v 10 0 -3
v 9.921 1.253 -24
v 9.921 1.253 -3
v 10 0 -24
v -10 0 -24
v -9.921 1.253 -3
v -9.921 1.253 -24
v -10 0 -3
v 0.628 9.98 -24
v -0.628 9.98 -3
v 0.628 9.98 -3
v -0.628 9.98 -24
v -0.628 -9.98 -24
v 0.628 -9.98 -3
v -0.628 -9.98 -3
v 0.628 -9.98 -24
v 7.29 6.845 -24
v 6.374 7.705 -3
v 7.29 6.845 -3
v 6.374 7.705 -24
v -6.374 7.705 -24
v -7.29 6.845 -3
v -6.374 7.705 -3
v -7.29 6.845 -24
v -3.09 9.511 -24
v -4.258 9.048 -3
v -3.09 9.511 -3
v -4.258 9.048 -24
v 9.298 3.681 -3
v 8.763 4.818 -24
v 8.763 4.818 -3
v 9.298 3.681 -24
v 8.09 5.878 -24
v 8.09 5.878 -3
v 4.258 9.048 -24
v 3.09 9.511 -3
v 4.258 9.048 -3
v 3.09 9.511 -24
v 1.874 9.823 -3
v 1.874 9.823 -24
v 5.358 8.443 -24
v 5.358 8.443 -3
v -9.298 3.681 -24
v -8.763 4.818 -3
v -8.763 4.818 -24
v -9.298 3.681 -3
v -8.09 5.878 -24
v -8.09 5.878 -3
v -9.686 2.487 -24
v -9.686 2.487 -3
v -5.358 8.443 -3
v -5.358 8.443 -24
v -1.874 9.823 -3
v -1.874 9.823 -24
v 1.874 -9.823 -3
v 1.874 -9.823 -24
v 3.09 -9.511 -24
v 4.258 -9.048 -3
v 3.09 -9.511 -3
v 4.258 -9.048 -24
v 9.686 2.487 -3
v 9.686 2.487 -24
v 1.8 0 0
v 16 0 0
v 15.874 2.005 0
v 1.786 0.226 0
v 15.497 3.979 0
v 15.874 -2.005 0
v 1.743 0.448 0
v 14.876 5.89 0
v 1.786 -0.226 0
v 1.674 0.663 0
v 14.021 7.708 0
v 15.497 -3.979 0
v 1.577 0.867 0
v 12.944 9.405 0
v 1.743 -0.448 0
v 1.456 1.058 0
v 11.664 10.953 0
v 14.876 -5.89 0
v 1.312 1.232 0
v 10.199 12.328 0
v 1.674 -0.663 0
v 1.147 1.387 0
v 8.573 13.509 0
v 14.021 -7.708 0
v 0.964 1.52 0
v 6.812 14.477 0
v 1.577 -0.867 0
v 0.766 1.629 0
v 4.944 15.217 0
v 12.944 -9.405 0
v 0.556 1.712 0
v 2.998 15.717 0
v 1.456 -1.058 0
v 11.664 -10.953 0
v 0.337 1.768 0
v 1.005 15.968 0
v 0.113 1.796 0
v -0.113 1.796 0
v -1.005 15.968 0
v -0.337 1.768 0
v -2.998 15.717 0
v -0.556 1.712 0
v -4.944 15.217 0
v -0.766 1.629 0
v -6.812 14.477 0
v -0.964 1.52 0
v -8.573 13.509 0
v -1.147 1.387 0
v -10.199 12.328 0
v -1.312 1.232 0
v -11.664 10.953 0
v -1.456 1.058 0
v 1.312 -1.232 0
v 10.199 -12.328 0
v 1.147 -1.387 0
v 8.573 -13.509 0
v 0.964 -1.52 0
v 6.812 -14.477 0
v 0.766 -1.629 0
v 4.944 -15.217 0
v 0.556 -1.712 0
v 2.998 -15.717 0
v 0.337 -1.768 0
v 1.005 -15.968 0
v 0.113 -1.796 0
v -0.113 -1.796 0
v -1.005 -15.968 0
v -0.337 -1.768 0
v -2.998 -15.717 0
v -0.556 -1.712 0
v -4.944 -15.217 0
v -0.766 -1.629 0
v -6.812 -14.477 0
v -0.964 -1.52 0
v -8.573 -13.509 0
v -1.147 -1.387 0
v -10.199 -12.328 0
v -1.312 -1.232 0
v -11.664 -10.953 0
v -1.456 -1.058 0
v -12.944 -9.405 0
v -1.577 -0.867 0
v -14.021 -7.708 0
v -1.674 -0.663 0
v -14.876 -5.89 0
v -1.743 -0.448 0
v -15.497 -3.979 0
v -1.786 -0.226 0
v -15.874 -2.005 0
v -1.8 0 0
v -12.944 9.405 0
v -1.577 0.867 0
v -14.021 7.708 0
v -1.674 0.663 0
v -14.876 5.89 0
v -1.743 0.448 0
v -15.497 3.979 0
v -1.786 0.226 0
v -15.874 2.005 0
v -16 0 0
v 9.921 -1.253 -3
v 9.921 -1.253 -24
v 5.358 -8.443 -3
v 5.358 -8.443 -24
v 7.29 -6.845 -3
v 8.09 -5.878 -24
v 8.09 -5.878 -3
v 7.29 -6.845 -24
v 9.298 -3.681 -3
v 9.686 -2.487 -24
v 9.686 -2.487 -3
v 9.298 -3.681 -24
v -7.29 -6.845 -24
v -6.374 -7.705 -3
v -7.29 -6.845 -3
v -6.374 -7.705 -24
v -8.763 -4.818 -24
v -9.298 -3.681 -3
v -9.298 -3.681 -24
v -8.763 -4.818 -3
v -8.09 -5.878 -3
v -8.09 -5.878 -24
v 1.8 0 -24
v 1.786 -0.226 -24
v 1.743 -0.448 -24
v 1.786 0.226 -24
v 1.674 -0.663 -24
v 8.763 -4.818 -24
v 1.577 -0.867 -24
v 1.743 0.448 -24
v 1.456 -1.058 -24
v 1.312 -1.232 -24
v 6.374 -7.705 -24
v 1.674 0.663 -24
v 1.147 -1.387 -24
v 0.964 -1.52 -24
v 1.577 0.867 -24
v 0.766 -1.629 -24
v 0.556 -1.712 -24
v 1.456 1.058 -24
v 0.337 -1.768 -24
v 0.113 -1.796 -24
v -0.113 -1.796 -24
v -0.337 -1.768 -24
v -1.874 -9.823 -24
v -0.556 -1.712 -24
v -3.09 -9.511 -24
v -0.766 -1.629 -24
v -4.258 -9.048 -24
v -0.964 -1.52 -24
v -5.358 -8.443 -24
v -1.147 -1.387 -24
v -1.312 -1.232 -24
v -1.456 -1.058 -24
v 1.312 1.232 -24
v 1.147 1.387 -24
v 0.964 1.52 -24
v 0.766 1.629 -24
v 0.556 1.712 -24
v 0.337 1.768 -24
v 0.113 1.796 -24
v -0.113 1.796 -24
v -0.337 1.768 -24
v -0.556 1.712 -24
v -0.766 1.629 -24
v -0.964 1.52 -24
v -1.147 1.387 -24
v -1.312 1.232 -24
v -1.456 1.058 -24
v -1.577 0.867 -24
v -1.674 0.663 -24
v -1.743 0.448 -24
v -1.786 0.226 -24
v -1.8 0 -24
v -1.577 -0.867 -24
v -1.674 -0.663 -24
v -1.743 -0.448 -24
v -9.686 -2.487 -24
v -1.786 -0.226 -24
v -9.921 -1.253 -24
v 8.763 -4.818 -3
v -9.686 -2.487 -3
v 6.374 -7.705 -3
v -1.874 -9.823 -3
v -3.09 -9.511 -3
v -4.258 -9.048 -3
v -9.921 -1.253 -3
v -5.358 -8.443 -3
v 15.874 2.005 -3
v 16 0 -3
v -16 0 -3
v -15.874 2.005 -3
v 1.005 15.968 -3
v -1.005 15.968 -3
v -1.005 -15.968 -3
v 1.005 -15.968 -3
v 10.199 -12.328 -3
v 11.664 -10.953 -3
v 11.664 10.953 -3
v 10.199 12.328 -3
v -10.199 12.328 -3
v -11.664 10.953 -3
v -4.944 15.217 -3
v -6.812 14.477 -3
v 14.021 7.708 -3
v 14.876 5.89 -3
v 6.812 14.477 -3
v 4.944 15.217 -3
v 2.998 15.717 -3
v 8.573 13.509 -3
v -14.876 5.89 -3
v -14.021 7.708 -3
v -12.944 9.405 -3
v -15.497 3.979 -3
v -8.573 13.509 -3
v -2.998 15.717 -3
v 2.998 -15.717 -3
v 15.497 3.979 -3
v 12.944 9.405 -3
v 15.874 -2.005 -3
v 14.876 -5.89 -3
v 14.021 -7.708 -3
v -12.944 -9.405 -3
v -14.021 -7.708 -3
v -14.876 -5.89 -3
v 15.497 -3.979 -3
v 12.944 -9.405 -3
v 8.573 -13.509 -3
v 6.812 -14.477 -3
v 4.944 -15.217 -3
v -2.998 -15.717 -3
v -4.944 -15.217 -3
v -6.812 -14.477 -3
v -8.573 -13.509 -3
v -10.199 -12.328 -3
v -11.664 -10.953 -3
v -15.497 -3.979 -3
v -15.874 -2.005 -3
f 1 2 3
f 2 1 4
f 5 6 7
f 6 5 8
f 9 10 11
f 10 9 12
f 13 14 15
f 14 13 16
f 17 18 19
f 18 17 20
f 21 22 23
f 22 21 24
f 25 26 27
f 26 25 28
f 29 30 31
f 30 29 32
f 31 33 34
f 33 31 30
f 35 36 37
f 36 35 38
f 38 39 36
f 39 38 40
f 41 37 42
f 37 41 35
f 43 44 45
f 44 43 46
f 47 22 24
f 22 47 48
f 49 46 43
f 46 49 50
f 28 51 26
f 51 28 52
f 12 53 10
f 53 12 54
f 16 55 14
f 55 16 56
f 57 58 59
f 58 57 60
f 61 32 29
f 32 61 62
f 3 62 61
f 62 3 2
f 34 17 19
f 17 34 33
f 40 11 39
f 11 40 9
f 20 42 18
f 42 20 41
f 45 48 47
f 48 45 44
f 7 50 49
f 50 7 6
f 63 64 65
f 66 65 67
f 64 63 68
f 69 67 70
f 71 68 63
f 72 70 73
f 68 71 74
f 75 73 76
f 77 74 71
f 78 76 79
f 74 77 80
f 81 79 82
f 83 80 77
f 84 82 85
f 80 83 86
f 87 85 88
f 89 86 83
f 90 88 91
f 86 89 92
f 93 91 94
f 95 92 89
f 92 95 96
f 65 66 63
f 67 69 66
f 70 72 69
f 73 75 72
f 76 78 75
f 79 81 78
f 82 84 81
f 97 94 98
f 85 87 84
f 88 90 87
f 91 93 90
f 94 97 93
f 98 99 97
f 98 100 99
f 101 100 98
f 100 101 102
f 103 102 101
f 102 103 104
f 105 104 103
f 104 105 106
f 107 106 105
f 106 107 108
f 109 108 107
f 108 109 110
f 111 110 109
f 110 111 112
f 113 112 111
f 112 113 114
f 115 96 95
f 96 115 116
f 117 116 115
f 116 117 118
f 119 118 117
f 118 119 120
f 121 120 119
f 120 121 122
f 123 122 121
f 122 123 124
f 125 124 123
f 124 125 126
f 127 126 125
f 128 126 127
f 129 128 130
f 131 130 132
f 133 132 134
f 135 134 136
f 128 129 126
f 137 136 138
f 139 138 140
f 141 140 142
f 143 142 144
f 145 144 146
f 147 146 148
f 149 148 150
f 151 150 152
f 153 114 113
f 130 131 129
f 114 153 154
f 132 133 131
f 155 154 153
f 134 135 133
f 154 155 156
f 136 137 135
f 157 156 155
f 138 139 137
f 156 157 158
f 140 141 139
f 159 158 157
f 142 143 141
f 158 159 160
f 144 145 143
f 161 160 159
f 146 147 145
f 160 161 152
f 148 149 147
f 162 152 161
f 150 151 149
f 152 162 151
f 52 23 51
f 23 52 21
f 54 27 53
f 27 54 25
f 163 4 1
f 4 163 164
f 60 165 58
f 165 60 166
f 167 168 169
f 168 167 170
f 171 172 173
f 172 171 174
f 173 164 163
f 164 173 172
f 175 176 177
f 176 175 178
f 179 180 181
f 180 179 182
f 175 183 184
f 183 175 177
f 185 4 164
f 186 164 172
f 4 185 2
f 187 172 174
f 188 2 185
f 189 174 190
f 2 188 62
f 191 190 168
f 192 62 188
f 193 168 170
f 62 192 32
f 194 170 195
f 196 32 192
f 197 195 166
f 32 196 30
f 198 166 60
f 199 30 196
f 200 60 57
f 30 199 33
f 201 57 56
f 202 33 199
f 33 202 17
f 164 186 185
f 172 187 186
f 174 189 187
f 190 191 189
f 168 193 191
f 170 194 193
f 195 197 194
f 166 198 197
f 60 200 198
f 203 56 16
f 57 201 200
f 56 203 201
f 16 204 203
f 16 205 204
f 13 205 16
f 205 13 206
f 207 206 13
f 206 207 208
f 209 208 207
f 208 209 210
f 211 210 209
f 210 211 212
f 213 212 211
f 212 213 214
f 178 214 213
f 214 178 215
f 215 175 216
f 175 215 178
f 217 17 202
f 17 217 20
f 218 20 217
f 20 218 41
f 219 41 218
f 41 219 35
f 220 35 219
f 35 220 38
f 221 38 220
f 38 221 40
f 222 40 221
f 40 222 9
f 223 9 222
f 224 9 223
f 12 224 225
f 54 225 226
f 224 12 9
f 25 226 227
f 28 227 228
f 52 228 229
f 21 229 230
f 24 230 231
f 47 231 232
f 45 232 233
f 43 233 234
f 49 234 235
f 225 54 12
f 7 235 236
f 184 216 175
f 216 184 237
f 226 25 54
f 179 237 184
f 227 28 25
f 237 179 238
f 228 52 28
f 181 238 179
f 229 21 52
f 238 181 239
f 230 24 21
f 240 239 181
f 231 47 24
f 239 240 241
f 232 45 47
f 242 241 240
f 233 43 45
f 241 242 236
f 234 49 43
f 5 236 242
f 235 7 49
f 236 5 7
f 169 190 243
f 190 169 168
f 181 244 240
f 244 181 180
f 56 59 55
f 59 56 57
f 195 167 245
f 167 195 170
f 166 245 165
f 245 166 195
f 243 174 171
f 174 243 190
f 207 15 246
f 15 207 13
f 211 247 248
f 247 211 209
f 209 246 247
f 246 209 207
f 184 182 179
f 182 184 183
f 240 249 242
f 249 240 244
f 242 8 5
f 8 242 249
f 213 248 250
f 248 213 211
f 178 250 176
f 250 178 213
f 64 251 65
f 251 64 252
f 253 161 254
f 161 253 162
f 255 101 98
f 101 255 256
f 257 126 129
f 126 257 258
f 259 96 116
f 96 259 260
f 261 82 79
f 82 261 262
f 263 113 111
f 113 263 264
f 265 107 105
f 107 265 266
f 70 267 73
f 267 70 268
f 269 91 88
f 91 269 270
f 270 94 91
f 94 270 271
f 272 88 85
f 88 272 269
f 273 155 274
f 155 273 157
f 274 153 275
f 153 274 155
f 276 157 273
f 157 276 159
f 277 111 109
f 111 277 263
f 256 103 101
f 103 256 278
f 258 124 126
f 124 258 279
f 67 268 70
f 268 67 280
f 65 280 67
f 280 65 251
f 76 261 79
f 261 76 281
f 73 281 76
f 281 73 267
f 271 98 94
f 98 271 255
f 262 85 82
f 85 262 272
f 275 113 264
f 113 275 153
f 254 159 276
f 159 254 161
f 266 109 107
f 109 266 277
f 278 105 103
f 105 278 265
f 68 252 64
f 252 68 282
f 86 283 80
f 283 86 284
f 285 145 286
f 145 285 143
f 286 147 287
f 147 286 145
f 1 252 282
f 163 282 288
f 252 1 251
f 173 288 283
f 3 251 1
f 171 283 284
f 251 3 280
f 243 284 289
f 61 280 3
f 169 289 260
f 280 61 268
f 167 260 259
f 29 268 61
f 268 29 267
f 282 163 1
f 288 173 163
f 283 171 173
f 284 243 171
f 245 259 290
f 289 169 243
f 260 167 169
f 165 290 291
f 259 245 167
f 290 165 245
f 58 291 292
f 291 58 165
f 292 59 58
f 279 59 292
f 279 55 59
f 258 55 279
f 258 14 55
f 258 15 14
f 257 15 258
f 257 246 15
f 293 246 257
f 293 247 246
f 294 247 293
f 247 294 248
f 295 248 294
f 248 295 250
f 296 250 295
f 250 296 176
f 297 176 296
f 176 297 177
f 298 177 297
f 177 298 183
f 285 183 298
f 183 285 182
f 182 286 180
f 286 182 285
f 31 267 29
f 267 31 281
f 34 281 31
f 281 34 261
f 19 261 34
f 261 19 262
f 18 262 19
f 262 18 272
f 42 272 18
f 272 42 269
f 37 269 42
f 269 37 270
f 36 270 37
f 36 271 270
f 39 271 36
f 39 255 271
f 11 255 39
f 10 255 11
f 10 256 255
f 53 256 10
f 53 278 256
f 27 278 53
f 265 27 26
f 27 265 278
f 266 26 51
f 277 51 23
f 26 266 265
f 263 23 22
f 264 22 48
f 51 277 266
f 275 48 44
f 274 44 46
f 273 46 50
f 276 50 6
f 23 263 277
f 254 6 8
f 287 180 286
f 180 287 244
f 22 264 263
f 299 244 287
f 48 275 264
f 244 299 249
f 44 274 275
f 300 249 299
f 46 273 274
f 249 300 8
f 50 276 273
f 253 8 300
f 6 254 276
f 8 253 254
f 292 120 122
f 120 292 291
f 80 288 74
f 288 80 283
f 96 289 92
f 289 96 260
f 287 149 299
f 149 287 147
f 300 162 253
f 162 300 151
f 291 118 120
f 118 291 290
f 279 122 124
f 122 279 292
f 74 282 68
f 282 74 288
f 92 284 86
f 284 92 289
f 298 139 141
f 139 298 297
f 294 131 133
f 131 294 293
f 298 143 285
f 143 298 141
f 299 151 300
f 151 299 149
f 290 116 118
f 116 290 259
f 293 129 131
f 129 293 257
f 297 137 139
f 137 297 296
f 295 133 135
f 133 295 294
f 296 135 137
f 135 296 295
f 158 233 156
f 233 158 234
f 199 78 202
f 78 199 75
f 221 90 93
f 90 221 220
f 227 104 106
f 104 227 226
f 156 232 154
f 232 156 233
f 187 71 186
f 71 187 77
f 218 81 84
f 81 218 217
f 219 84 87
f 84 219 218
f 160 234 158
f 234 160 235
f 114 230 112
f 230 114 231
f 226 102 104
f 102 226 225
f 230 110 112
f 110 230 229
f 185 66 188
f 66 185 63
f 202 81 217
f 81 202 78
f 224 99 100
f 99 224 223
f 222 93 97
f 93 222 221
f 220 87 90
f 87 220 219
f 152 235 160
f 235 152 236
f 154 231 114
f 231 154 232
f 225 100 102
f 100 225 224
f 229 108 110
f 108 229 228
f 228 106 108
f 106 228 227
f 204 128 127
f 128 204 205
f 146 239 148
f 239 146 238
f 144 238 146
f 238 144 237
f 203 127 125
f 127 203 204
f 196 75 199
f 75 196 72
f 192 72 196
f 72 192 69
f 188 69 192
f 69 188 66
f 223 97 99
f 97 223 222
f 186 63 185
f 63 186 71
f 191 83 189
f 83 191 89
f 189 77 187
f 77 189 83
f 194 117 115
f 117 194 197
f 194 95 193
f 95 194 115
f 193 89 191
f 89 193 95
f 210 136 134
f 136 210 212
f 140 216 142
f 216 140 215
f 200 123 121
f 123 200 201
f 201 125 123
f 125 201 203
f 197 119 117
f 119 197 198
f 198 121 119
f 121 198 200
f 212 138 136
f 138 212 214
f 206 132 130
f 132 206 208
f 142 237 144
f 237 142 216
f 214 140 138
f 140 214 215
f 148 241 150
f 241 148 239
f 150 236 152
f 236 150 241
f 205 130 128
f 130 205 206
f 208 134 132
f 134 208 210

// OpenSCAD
$fn = 50;


difference() {
	union() {
		translate(v = [0, 0, -24.0000000000]) {
			cylinder(h = 24, r = 10.0000000000);
		}
		translate(v = [0, 0, -3.0000000000]) {
			cylinder(h = 3, r = 16.0000000000);
		}
	}
	union() {
		#translate(v = [0, 0, -24]) {
			cylinder(h = 24, r = 1.8000000000);
		}
	}
}
